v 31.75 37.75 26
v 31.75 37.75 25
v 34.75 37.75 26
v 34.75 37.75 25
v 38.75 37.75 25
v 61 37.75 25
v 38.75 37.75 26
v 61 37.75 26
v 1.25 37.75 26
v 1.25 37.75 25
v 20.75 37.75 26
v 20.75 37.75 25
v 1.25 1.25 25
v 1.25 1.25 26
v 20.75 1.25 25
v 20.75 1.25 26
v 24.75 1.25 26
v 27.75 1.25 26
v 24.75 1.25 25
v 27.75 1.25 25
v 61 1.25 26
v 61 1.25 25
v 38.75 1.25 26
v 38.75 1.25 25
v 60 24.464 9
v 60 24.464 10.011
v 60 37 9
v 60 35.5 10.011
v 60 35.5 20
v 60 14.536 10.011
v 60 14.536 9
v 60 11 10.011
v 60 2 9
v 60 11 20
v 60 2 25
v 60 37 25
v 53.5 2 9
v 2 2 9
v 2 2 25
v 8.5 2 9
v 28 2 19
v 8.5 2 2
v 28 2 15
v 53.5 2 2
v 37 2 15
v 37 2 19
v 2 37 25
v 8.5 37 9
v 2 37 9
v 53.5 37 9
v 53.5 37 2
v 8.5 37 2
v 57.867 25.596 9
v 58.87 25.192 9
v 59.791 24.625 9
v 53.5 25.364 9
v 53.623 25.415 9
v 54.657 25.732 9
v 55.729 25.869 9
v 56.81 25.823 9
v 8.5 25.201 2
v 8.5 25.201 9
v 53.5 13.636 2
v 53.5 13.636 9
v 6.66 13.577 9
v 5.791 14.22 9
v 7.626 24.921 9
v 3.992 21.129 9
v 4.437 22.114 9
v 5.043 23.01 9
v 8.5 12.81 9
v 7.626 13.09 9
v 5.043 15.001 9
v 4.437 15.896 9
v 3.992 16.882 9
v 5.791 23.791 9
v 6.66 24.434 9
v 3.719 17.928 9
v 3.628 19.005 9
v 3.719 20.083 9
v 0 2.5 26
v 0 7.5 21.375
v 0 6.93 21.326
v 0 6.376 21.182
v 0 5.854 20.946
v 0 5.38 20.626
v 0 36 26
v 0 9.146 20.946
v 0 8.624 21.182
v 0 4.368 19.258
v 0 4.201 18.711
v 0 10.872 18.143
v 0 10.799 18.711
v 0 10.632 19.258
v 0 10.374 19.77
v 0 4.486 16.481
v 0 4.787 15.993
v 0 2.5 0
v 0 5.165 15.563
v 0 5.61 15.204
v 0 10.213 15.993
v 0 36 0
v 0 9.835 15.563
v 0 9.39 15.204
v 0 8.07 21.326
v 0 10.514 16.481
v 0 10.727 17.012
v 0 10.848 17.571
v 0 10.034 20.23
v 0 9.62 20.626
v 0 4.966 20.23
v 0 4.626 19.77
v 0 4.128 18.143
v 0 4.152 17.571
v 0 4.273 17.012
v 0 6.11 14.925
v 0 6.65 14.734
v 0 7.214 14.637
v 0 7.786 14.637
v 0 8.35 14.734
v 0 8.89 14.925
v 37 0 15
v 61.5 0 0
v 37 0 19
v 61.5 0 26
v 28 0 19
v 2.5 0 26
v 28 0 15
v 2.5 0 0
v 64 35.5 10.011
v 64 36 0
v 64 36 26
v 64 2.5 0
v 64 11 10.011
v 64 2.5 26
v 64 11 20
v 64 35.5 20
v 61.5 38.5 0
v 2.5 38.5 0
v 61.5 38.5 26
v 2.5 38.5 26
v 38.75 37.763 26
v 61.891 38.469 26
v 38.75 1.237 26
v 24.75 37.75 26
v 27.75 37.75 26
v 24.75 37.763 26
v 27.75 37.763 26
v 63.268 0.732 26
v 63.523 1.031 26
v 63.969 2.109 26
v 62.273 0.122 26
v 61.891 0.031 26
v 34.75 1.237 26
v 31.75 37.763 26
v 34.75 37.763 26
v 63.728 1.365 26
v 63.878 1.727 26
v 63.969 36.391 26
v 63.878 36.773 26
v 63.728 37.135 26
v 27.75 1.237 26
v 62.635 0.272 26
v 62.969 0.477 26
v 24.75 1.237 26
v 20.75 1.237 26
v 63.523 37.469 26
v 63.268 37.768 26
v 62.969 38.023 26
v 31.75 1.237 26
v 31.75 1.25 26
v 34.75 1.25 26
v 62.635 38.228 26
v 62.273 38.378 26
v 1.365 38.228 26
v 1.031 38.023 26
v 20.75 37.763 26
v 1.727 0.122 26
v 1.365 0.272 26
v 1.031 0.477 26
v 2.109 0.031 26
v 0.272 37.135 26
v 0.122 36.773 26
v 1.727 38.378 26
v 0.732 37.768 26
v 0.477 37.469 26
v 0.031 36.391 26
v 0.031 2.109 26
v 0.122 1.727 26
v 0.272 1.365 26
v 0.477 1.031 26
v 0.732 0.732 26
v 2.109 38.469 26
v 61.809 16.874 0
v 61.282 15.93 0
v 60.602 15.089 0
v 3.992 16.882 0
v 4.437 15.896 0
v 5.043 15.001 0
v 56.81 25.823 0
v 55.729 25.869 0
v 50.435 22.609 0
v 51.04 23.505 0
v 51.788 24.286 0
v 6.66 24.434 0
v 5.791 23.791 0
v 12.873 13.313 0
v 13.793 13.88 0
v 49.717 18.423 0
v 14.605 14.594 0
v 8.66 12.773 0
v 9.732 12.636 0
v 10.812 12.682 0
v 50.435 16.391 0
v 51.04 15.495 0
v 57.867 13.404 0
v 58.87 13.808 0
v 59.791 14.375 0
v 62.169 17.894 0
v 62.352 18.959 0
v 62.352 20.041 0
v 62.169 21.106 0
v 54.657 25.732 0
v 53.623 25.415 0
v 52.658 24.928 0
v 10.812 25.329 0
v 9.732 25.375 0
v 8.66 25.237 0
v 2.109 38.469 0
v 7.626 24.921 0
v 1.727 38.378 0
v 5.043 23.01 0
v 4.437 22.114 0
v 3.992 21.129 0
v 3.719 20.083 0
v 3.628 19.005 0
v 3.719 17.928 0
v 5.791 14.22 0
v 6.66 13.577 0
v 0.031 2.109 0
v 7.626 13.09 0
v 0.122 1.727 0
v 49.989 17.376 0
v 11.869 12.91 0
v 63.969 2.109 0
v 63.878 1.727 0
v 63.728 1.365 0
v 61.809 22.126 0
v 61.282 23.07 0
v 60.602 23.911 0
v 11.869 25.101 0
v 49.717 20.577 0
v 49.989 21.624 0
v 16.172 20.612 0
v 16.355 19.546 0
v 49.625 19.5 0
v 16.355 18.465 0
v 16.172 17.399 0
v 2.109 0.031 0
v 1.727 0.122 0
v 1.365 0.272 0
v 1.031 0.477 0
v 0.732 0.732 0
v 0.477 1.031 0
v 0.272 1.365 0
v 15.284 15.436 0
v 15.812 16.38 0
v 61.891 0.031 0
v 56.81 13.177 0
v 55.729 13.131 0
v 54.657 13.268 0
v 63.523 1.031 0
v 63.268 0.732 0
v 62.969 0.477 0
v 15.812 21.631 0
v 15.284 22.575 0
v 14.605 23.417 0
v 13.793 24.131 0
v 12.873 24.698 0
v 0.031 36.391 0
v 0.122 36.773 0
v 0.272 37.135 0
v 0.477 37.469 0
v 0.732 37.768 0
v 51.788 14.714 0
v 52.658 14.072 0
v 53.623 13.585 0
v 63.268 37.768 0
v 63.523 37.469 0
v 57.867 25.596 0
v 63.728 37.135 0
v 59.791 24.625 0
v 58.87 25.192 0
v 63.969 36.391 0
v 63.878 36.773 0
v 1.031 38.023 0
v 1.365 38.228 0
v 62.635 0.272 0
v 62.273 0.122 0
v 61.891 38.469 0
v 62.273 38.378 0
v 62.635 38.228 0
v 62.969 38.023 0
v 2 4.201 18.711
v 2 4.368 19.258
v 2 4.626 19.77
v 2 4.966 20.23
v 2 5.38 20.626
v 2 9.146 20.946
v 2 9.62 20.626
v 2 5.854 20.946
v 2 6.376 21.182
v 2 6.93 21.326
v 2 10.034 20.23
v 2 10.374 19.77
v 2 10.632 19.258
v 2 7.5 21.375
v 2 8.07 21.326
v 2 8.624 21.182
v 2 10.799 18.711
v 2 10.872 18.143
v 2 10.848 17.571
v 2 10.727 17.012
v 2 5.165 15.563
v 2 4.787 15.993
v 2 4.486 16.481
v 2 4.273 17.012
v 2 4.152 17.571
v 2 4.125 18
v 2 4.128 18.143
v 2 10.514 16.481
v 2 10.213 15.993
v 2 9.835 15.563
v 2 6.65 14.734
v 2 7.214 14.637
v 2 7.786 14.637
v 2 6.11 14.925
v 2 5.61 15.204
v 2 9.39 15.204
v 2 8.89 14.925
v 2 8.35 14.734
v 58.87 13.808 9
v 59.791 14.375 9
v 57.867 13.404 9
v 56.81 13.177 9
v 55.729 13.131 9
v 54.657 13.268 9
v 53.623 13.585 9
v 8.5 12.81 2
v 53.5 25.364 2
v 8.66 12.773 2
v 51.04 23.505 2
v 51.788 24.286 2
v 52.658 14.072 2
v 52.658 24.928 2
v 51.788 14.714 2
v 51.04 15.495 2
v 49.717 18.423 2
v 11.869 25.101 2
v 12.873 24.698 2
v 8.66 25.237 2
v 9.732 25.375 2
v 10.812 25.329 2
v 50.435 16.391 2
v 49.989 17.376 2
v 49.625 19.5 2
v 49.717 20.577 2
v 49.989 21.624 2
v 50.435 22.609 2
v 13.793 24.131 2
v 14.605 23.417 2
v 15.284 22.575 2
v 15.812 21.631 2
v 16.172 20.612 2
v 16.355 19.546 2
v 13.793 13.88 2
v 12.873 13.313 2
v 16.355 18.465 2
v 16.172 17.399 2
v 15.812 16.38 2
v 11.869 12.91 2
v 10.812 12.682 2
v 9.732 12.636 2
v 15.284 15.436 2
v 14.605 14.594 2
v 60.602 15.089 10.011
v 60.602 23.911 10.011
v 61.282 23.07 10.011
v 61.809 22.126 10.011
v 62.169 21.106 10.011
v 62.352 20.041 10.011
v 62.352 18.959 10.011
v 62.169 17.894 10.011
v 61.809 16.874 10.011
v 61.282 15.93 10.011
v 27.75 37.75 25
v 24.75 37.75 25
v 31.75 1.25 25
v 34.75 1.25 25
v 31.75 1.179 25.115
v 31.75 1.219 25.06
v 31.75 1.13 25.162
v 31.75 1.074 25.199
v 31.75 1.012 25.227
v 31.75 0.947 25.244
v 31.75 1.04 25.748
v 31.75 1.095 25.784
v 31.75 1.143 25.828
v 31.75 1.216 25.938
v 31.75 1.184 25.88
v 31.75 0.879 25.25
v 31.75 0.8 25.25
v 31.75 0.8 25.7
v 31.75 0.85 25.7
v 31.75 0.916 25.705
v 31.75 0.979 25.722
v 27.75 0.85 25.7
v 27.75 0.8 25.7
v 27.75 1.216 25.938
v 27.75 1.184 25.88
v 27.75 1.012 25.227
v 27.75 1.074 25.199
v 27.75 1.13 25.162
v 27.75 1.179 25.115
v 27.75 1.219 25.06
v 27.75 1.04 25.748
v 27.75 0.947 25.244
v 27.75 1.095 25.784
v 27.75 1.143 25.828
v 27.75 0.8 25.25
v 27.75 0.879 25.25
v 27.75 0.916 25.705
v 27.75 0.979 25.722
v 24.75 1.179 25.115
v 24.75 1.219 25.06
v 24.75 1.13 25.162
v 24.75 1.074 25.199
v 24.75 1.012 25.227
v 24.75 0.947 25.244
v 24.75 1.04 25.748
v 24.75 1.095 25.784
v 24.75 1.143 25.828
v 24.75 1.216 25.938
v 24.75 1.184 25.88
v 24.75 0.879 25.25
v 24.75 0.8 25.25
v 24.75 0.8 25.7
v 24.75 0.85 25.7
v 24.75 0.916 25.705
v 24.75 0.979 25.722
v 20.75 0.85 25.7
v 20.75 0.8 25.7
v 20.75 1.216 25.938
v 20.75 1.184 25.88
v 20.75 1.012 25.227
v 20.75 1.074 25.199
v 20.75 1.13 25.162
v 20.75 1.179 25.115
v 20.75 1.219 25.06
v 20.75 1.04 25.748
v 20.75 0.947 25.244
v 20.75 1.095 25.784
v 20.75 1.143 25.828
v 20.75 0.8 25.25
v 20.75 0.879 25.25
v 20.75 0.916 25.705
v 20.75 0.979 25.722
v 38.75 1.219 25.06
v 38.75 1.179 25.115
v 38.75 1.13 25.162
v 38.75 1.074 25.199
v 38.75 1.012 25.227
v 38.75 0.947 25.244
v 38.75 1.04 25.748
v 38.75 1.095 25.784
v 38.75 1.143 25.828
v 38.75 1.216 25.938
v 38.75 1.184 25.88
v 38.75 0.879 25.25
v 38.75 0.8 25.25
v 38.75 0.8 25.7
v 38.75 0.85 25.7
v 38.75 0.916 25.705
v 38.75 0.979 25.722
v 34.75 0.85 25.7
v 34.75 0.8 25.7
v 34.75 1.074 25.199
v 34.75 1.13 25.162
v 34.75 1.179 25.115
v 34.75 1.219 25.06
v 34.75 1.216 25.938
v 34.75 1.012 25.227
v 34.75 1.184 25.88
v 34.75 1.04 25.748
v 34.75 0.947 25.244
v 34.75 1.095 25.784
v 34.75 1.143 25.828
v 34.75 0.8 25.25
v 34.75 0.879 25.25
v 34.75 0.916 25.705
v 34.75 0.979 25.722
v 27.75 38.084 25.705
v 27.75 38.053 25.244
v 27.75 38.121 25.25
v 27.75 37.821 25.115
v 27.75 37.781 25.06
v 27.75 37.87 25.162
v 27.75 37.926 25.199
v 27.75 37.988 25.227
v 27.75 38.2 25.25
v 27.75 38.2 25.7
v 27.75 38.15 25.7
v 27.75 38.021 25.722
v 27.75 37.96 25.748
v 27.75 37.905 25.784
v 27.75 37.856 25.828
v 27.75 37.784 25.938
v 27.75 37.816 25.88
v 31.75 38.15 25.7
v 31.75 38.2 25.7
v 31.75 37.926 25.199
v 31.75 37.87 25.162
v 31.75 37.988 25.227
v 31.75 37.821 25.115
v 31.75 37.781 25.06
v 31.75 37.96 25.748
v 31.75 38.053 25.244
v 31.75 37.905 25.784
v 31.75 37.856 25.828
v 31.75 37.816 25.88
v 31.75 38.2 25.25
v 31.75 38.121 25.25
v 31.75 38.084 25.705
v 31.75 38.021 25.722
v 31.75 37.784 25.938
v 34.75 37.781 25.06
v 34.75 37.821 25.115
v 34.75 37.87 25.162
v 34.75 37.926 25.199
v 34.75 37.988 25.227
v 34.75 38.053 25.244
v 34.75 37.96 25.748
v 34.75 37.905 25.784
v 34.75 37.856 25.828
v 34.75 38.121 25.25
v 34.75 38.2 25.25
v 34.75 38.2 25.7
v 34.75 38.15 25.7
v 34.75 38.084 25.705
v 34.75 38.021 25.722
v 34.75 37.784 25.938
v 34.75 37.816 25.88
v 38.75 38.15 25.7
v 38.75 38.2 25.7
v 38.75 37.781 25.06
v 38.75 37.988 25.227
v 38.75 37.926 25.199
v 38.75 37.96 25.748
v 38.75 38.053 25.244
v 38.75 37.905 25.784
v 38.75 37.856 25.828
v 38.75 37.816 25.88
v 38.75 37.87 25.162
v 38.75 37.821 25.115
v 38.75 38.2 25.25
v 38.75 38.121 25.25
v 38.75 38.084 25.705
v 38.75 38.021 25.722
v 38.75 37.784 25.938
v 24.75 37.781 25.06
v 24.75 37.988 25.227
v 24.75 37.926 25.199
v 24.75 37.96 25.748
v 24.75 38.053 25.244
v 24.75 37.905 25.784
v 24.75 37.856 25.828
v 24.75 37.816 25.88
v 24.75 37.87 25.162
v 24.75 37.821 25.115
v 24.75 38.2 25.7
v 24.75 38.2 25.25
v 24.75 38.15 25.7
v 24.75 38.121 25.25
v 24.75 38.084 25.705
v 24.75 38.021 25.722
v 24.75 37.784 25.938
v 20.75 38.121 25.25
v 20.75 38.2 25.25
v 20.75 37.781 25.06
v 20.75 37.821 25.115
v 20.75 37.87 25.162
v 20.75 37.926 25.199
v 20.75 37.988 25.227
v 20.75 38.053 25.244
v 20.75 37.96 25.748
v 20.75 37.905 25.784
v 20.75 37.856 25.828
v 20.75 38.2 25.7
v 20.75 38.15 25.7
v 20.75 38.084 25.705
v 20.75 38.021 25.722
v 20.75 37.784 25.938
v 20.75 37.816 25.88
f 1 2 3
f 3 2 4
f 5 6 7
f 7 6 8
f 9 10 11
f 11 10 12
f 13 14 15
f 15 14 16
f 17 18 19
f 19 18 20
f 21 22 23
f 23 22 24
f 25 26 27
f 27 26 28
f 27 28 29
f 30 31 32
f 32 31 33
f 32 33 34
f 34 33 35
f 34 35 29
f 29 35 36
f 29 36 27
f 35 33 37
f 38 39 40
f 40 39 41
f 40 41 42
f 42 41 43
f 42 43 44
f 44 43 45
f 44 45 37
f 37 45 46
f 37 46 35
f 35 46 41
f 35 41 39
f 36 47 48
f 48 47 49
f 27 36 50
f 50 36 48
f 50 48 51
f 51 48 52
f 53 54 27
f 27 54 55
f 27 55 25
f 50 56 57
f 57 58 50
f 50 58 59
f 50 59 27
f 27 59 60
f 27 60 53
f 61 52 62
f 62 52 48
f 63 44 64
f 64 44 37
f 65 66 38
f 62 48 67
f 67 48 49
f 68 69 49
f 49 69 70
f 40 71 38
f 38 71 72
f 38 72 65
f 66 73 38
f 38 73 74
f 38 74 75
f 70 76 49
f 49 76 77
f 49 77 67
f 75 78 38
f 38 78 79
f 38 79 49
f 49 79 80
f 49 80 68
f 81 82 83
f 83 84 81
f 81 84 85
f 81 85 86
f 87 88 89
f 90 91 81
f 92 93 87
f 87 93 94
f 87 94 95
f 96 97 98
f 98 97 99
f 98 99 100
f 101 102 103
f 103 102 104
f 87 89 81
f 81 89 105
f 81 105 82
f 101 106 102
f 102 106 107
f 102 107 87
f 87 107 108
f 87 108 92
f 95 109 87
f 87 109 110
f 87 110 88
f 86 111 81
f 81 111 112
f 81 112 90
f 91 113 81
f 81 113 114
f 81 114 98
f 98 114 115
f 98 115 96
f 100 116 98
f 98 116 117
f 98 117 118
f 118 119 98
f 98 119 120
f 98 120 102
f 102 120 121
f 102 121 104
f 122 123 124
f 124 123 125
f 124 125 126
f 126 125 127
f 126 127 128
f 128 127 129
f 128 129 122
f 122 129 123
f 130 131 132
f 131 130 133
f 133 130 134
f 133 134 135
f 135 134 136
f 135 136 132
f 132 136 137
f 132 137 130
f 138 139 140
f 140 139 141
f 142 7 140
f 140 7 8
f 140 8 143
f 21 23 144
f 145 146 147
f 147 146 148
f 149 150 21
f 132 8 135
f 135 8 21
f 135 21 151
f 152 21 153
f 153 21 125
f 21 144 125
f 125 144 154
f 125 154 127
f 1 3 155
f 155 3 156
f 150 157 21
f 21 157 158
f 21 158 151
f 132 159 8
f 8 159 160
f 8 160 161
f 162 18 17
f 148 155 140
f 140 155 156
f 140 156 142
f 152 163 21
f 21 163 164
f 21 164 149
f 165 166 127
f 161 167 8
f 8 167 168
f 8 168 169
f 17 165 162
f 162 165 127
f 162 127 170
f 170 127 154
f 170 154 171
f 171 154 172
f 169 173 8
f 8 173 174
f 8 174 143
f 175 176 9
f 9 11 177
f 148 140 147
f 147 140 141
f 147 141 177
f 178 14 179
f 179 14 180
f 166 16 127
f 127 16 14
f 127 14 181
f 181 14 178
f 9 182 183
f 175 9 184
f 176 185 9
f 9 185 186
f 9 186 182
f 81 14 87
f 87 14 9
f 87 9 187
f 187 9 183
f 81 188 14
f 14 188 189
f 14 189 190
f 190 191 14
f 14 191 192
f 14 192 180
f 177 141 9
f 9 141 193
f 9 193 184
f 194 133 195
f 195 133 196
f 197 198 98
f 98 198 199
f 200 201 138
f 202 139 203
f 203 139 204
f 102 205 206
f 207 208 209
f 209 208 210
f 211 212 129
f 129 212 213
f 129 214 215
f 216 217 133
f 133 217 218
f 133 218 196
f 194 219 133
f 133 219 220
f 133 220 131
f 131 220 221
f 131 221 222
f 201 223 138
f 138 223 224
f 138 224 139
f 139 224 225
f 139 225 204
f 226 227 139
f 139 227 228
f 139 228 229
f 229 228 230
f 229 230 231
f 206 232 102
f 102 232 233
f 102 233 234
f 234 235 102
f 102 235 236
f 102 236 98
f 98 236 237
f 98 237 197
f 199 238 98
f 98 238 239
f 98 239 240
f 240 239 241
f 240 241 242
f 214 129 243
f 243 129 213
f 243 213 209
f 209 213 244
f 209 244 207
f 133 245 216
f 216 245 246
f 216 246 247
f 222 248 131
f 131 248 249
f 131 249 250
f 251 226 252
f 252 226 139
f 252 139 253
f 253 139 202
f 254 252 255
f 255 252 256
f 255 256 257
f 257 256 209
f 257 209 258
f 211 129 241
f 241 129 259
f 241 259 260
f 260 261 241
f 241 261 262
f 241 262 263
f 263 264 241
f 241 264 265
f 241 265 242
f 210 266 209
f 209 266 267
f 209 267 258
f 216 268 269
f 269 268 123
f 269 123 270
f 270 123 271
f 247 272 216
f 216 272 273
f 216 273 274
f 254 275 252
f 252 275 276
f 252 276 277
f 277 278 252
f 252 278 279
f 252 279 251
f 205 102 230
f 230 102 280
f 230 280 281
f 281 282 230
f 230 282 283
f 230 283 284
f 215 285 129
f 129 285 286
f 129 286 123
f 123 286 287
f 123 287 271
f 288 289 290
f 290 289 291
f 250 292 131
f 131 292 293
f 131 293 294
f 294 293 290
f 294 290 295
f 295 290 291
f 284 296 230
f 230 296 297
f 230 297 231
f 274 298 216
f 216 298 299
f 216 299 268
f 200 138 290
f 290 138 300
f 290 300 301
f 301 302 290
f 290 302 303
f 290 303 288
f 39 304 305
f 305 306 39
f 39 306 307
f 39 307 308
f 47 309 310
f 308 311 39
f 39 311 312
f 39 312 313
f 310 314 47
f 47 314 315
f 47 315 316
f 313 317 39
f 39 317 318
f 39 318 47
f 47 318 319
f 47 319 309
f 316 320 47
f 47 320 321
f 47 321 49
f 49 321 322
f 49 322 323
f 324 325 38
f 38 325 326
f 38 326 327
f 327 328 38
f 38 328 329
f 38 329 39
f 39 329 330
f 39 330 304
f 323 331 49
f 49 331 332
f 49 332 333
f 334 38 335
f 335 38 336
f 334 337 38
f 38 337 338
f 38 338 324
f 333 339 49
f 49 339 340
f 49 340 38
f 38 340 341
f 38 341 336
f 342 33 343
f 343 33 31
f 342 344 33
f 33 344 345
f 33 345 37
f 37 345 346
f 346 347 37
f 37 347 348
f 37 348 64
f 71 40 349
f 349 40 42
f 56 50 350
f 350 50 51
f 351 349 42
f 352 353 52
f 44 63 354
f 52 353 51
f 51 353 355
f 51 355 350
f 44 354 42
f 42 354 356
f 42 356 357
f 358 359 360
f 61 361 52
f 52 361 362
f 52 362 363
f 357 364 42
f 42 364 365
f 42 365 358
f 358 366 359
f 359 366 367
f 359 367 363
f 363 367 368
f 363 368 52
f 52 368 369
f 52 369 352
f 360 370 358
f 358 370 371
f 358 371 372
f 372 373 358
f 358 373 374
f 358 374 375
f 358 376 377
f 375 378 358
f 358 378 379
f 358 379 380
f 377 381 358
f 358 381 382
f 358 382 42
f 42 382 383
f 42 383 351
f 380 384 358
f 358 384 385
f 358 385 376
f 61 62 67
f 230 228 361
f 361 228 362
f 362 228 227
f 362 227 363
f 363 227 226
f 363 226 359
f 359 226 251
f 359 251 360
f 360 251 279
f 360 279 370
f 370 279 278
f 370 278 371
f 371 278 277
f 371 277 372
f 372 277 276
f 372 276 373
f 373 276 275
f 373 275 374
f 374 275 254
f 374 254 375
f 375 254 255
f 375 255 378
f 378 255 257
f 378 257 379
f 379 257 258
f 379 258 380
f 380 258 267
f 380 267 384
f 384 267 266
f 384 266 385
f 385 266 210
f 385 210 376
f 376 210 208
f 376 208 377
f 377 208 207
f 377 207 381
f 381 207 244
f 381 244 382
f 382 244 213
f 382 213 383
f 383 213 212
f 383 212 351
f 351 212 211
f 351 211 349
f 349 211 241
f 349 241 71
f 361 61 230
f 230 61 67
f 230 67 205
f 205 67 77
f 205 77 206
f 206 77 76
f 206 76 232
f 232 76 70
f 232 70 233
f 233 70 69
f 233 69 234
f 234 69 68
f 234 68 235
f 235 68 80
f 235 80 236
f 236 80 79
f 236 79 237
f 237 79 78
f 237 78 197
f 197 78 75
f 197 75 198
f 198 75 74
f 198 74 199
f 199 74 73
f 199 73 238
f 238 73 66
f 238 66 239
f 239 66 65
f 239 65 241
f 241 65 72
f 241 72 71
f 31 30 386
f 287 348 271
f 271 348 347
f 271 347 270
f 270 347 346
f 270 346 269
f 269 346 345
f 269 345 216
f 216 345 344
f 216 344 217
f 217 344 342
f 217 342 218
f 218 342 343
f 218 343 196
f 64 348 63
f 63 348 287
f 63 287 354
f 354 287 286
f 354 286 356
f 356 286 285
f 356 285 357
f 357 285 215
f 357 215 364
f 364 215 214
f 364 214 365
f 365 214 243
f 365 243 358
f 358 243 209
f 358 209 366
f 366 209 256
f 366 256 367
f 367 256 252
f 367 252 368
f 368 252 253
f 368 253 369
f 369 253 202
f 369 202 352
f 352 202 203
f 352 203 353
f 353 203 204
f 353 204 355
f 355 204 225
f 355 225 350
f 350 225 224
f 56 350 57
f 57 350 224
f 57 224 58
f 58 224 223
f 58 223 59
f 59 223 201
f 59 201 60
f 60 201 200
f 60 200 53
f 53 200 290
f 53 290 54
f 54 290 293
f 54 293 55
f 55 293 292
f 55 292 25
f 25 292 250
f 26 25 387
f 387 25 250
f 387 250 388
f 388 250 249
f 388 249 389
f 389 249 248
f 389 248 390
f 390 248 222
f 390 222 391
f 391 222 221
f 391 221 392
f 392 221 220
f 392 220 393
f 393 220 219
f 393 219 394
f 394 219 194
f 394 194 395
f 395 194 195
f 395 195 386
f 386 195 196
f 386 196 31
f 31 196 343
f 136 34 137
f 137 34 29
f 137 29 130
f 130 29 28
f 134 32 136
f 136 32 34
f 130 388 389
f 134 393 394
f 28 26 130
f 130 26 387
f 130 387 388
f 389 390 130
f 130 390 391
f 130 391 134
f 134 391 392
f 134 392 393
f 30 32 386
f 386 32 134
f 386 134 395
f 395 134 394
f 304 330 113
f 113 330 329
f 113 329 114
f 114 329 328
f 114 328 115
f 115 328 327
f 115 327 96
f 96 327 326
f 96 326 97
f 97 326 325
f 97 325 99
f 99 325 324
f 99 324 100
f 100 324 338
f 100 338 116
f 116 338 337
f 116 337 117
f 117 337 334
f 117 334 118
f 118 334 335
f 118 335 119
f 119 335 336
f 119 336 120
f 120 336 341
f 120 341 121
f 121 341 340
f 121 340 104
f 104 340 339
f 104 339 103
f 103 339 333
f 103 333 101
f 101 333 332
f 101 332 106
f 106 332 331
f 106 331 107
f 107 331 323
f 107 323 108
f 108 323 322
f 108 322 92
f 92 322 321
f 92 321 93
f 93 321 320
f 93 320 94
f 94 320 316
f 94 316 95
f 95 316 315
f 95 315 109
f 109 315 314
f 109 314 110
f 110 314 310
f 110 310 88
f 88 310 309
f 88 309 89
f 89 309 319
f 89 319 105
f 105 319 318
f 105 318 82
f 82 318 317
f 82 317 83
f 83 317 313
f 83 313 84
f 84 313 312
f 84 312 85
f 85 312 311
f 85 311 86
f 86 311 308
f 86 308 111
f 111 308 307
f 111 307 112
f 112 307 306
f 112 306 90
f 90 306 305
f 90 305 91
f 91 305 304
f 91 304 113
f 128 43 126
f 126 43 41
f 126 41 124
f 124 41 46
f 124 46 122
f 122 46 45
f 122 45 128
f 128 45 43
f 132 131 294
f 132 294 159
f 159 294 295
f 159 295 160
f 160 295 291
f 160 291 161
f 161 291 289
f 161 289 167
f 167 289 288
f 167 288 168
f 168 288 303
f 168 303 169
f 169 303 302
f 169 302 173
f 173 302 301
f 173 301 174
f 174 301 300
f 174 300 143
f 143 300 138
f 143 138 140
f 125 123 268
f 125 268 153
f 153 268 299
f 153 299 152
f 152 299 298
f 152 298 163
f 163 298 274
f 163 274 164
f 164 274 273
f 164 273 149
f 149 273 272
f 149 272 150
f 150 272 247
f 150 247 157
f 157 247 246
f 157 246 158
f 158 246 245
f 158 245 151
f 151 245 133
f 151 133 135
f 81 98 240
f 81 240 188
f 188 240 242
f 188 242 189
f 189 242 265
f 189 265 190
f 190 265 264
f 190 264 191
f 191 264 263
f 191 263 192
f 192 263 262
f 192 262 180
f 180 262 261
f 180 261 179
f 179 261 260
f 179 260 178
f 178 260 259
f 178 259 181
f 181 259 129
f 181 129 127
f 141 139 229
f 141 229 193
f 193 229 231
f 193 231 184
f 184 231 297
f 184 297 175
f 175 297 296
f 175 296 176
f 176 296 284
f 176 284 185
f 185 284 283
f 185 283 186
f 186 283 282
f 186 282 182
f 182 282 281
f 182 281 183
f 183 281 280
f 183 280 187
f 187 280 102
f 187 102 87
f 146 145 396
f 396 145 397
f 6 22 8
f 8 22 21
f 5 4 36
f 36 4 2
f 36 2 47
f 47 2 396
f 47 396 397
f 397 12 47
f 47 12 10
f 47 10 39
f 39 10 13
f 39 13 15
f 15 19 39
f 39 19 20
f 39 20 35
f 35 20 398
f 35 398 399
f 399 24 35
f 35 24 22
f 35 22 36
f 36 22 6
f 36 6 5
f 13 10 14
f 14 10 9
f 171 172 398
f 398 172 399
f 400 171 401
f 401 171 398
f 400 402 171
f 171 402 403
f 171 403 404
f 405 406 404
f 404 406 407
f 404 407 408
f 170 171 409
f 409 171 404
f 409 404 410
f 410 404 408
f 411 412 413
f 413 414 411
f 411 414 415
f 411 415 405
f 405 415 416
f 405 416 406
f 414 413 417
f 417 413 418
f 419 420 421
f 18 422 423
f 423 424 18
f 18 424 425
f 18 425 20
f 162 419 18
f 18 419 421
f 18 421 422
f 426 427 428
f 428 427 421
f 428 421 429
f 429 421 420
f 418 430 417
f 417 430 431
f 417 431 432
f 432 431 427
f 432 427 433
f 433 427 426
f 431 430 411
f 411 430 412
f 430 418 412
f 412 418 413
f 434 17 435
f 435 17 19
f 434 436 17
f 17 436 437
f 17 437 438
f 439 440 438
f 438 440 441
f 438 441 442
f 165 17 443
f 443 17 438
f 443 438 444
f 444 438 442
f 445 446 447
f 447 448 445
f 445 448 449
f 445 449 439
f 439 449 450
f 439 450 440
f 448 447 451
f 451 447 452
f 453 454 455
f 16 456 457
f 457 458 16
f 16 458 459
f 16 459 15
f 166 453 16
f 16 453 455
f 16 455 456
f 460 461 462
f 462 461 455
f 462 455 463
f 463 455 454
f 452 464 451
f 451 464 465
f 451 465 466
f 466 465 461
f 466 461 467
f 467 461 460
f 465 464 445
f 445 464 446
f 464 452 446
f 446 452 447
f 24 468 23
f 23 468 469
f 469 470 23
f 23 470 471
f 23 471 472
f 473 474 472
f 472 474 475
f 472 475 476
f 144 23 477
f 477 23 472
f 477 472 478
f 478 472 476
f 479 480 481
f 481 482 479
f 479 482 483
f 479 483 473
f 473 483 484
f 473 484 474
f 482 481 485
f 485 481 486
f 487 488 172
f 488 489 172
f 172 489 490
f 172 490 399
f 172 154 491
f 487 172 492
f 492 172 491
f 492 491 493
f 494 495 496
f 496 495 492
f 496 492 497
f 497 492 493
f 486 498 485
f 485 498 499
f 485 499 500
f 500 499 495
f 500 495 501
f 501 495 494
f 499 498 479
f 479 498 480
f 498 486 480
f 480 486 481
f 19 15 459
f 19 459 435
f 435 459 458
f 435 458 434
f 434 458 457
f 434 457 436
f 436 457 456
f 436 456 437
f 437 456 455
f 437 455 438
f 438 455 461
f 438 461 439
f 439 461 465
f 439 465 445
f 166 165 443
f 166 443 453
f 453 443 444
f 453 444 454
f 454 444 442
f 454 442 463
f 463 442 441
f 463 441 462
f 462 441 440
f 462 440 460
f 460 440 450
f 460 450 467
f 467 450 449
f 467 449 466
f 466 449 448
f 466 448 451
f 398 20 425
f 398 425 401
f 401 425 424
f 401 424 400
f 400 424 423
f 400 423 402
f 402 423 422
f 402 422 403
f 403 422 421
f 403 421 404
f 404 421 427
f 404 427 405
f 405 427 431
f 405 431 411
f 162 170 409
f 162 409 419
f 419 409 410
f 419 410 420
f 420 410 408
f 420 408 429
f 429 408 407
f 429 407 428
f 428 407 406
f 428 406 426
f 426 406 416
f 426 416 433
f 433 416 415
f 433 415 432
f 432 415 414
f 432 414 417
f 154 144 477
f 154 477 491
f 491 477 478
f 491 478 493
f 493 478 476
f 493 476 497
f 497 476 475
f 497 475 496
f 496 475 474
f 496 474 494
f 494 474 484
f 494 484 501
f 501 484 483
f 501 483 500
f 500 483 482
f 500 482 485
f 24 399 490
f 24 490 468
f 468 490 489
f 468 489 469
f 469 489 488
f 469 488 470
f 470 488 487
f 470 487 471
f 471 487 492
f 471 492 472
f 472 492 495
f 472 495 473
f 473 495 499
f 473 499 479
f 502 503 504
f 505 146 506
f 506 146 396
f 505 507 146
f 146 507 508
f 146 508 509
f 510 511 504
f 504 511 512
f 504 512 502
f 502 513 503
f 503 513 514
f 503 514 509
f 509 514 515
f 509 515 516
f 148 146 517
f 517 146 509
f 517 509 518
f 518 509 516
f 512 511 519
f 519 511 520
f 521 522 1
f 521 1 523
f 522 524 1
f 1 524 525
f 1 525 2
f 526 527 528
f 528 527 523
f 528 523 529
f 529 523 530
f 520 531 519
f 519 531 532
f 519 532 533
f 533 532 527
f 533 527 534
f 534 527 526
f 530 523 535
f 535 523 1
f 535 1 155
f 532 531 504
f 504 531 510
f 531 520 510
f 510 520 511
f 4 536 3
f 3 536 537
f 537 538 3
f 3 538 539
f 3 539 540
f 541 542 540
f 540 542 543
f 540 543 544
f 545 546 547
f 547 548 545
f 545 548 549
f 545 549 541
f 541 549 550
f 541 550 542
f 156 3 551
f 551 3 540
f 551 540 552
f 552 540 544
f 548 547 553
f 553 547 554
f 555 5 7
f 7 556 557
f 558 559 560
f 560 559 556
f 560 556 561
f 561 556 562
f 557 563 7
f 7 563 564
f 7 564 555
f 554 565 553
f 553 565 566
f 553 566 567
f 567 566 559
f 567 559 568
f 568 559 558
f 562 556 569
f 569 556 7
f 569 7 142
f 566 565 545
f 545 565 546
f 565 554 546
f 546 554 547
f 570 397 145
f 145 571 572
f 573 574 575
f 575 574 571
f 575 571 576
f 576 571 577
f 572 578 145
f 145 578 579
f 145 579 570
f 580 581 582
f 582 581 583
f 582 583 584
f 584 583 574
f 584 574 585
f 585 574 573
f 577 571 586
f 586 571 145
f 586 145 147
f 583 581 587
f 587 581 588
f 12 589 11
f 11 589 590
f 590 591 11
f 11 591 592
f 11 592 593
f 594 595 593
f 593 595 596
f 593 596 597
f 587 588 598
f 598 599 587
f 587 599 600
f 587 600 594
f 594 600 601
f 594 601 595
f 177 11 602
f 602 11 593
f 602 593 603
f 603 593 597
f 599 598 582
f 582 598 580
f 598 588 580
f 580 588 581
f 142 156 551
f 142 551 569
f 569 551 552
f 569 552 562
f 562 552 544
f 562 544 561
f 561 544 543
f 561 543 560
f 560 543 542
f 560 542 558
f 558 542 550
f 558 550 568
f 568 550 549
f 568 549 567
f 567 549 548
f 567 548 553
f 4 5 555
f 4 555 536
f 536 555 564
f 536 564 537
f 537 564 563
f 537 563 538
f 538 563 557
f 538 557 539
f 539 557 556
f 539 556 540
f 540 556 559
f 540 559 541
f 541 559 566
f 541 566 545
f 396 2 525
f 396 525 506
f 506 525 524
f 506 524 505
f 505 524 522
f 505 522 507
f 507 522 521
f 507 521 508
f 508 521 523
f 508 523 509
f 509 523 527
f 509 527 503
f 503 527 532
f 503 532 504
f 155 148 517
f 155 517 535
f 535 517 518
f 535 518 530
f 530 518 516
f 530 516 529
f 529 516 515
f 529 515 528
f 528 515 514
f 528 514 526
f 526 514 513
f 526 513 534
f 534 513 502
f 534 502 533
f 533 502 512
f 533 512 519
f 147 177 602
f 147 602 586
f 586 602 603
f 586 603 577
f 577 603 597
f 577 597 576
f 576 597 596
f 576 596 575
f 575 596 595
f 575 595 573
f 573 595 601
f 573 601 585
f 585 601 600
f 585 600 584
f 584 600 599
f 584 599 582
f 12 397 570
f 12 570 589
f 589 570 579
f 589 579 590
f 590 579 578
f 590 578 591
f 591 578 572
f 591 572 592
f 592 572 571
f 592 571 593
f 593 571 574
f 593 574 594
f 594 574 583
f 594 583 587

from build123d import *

# Parameters (mm, degrees)
SKETCH1_W           = 64
SKETCH1_H           = 38.5
BOSS_EXTRUDE1_DEPTH = 26
SKETCH2_W           = 58
SKETCH2_H           = 35
CUT_EXTRUDE1_DEPTH  = 17
SKETCH4_W           = 45
SKETCH4_H           = 35
CUT_EXTRUDE3_DEPTH  = 7
SKETCH5_R           = 6.375
CUT_EXTRUDE4_DEPTH  = 12
SKETCH6_W           = 9.989337028
SKETCH6_H           = 24.5
CUT_EXTRUDE5_DEPTH  = 17
SKETCH7_R           = 3.375
CUT_EXTRUDE6_DEPTH  = 7
SKETCH8_W           = 9
SKETCH8_H           = 4
CUT_EXTRUDE7_DEPTH  = 7
FILLET1_R           = 2.5
SKETCH10_W          = 59.5
SKETCH10_H          = 0.75
CUT_EXTRUDE8_DEPTH  = 1
SKETCH11_W          = 59.75
SKETCH11_H          = 0.75
CUT_EXTRUDE9_DEPTH  = 1
SKETCH12_W          = 1
SKETCH12_H          = 36.5
SKETCH12_W_2        = 0.75
CUT_EXTRUDE10_DEPTH = 1
SKETCH13_W          = 4
SKETCH13_H          = 0.45
CUT_EXTRUDE11_DEPTH = 0.45
FILLET2_R           = 0.4
SKETCH14_W          = 4
SKETCH14_H          = 0.45
CUT_EXTRUDE12_DEPTH = 0.45
FILLET3_R           = 0.4


with BuildPart() as part:
    # Sketch1 → Boss-Extrude1 (new body)
    with BuildSketch(Plane.XY):
        with Locations((32, 19.25)):
            Rectangle(SKETCH1_W, SKETCH1_H)
    extrude(amount=BOSS_EXTRUDE1_DEPTH)

    # Sketch2 → Cut-Extrude1 (cut)
    with BuildSketch(Plane.XY.offset(26)):
        with Locations((31, 19.5)):
            Rectangle(SKETCH2_W, SKETCH2_H)
    extrude(amount=-CUT_EXTRUDE1_DEPTH, mode=Mode.SUBTRACT)

    # Sketch4 → Cut-Extrude3 (cut)
    with BuildSketch(Plane.XY.offset(9)):
        with Locations((31, 19.5)):
            Rectangle(SKETCH4_W, SKETCH4_H)
    extrude(amount=-CUT_EXTRUDE3_DEPTH, mode=Mode.SUBTRACT)

    # Sketch5 → Cut-Extrude4 (cut)
    with BuildSketch(Plane(origin=(0, 0, 0), x_dir=(-1, 0, 0), z_dir=(0, 0, -1))):
        with Locations((-56, 19.5)):
            Circle(SKETCH5_R)
        with Locations((-10.002659036, 19.005404936)):
            Circle(SKETCH5_R)
    extrude(amount=-CUT_EXTRUDE4_DEPTH, mode=Mode.SUBTRACT)

    # Sketch6 → Cut-Extrude5 (cut)
    with BuildSketch(Plane(origin=(64, 0, 0), x_dir=(0, 0, -1), z_dir=(1, 0, 0))):
        with Locations((-15.005331486, 23.25)):
            Rectangle(SKETCH6_W, SKETCH6_H)
    extrude(amount=-CUT_EXTRUDE5_DEPTH, mode=Mode.SUBTRACT)

    # Sketch7 → Cut-Extrude6 (cut)
    with BuildSketch(Plane.ZY):
        with Locations((18, 7.5)):
            Circle(SKETCH7_R)
    extrude(amount=-CUT_EXTRUDE6_DEPTH, mode=Mode.SUBTRACT)

    # Sketch8 → Cut-Extrude7 (cut)
    with BuildSketch(Plane.XZ):
        with Locations((32.5, 17)):
            Rectangle(SKETCH8_W, SKETCH8_H)
    extrude(amount=-CUT_EXTRUDE7_DEPTH, mode=Mode.SUBTRACT)

    # Fillet1
    fillet1_edges = [part.edges().sort_by_distance(p)[0] for p in [
        (0, 38.5, 13),
        (64, 38.5, 13),
        (64, 0, 13),
        (0, 0, 13),
    ]]
    fillet(fillet1_edges, radius=FILLET1_R)

    # Sketch10 → Cut-Extrude8 (cut)
    with BuildSketch(Plane.XY.offset(26)):
        with Locations((31.25, 37.375)):
            Rectangle(SKETCH10_W, SKETCH10_H)
    extrude(amount=-CUT_EXTRUDE8_DEPTH, mode=Mode.SUBTRACT)

    # Sketch11 → Cut-Extrude9 (cut)
    with BuildSketch(Plane.XY.offset(26)):
        with Locations((31.125, 1.625)):
            Rectangle(SKETCH11_W, SKETCH11_H)
    extrude(amount=-CUT_EXTRUDE9_DEPTH, mode=Mode.SUBTRACT)

    # Sketch12 → Cut-Extrude10 (cut)
    with BuildSketch(Plane.XY.offset(26)):
        with Locations((60.5, 19.5)):
            Rectangle(SKETCH12_W, SKETCH12_H)
        with Locations((1.625, 19.5)):
            Rectangle(SKETCH12_W_2, SKETCH12_H)
    extrude(amount=-CUT_EXTRUDE10_DEPTH, mode=Mode.SUBTRACT)

    # Sketch13 → Cut-Extrude11 (cut)
    with BuildSketch(Plane(origin=(0, 1.25, 0), x_dir=(1, 0, 0), z_dir=(0, 1, 0))):
        with Locations((29.75, -25.475)):
            Rectangle(SKETCH13_W, SKETCH13_H)
        with Locations((22.75, -25.475)):
            Rectangle(SKETCH13_W, SKETCH13_H)
        with Locations((36.75, -25.475)):
            Rectangle(SKETCH13_W, SKETCH13_H)
    extrude(amount=-CUT_EXTRUDE11_DEPTH, mode=Mode.SUBTRACT)

    # Fillet2
    # the kernel refuses this fillet: 0.4 mm, written as the material it takes off along each edge
    with BuildSketch(Plane(origin=(34.75, 1.25, 25.25), x_dir=(0, 0, -1), z_dir=(1, 0, 0)), Plane(origin=(20.75, 1.25, 25.25), x_dir=(0, 0, -1), z_dir=(1, 0, 0)), Plane(origin=(27.75, 1.25, 25.25), x_dir=(0, 0, -1), z_dir=(1, 0, 0))) as fillet2_piece_1:
        with BuildLine():
            CenterArc((0.4, -0.370809924), FILLET2_R, 112.024312837, 67.975687163)
            Line((0, -0.370809924), (0, 0))
            Line((0, 0), (0.25, 0))
        make_face()
    extrude(amount=4, mode=Mode.SUBTRACT)
    with BuildSketch(Plane(origin=(38.75, 1.25, 25.7), x_dir=(0, 0, 1), z_dir=(-1, 0, 0)), Plane(origin=(24.75, 1.25, 25.7), x_dir=(0, 0, 1), z_dir=(-1, 0, 0)), Plane(origin=(31.75, 1.25, 25.7), x_dir=(0, 0, 1), z_dir=(-1, 0, 0))) as fillet2_piece_2:
        with BuildLine():
            CenterArc((FILLET2_R, -FILLET2_R), FILLET2_R, 90, 90)
            Line((0, -FILLET2_R), (0, 0))
            Line((0, 0), (FILLET2_R, 0))
        make_face()
    extrude(amount=4, mode=Mode.SUBTRACT)

    # Sketch14 → Cut-Extrude12 (cut)
    with BuildSketch(Plane.XZ.offset(-37.75)):
        with Locations((29.75, 25.475)):
            Rectangle(SKETCH14_W, SKETCH14_H)
        with Locations((36.75, 25.475)):
            Rectangle(SKETCH14_W, SKETCH14_H)
        with Locations((22.75, 25.475)):
            Rectangle(SKETCH14_W, SKETCH14_H)
    extrude(amount=-CUT_EXTRUDE12_DEPTH, mode=Mode.SUBTRACT)

    # Fillet3
    # the kernel refuses this fillet: 0.4 mm, written as the material it takes off along each edge
    with BuildSketch(Plane(origin=(24.75, 37.75, 25.7), x_dir=(0, 0, 1), z_dir=(-1, 0, 0))) as fillet3_piece_1:
        with BuildLine():
            CenterArc((FILLET3_R, FILLET3_R), FILLET3_R, 180, 90)
            Line((0, FILLET3_R), (0, 0))
            Line((0, 0), (FILLET3_R, 0))
        make_face()
    extrude(amount=4, mode=Mode.SUBTRACT)
    with BuildSketch(Plane(origin=(20.75, 37.75, 25.25), x_dir=(0, 0, -1), z_dir=(1, 0, 0))) as fillet3_piece_2:
        with BuildLine():
            CenterArc((0.4, 0.370809924), FILLET3_R, 180, 67.975687163)
            Line((0, 0.370809924), (0, 0))
            Line((0, 0), (0.25, 0))
        make_face()
    extrude(amount=4, mode=Mode.SUBTRACT)
    with BuildSketch(Plane(origin=(38.75, 37.75, 25.25), x_dir=(0, 0, -1), z_dir=(-1, 0, 0)), Plane(origin=(31.75, 37.75, 25.25), x_dir=(0, 0, -1), z_dir=(-1, 0, 0))) as fillet3_piece_3:
        with BuildLine():
            CenterArc((0.4, -0.370809924), FILLET3_R, 112.024312837, 67.975687163)
            Line((0, -0.370809924), (0, 0))
            Line((0, 0), (0.25, 0))
        make_face()
    extrude(amount=4, mode=Mode.SUBTRACT)
    with BuildSketch(Plane(origin=(34.75, 37.75, 25.7), x_dir=(0, 0, 1), z_dir=(1, 0, 0)), Plane(origin=(27.75, 37.75, 25.7), x_dir=(0, 0, 1), z_dir=(1, 0, 0))) as fillet3_piece_4:
        with BuildLine():
            CenterArc((FILLET3_R, -FILLET3_R), FILLET3_R, 90, 90)
            Line((0, -FILLET3_R), (0, 0))
            Line((0, 0), (FILLET3_R, 0))
        make_face()
    extrude(amount=4, mode=Mode.SUBTRACT)


solid = part.part
